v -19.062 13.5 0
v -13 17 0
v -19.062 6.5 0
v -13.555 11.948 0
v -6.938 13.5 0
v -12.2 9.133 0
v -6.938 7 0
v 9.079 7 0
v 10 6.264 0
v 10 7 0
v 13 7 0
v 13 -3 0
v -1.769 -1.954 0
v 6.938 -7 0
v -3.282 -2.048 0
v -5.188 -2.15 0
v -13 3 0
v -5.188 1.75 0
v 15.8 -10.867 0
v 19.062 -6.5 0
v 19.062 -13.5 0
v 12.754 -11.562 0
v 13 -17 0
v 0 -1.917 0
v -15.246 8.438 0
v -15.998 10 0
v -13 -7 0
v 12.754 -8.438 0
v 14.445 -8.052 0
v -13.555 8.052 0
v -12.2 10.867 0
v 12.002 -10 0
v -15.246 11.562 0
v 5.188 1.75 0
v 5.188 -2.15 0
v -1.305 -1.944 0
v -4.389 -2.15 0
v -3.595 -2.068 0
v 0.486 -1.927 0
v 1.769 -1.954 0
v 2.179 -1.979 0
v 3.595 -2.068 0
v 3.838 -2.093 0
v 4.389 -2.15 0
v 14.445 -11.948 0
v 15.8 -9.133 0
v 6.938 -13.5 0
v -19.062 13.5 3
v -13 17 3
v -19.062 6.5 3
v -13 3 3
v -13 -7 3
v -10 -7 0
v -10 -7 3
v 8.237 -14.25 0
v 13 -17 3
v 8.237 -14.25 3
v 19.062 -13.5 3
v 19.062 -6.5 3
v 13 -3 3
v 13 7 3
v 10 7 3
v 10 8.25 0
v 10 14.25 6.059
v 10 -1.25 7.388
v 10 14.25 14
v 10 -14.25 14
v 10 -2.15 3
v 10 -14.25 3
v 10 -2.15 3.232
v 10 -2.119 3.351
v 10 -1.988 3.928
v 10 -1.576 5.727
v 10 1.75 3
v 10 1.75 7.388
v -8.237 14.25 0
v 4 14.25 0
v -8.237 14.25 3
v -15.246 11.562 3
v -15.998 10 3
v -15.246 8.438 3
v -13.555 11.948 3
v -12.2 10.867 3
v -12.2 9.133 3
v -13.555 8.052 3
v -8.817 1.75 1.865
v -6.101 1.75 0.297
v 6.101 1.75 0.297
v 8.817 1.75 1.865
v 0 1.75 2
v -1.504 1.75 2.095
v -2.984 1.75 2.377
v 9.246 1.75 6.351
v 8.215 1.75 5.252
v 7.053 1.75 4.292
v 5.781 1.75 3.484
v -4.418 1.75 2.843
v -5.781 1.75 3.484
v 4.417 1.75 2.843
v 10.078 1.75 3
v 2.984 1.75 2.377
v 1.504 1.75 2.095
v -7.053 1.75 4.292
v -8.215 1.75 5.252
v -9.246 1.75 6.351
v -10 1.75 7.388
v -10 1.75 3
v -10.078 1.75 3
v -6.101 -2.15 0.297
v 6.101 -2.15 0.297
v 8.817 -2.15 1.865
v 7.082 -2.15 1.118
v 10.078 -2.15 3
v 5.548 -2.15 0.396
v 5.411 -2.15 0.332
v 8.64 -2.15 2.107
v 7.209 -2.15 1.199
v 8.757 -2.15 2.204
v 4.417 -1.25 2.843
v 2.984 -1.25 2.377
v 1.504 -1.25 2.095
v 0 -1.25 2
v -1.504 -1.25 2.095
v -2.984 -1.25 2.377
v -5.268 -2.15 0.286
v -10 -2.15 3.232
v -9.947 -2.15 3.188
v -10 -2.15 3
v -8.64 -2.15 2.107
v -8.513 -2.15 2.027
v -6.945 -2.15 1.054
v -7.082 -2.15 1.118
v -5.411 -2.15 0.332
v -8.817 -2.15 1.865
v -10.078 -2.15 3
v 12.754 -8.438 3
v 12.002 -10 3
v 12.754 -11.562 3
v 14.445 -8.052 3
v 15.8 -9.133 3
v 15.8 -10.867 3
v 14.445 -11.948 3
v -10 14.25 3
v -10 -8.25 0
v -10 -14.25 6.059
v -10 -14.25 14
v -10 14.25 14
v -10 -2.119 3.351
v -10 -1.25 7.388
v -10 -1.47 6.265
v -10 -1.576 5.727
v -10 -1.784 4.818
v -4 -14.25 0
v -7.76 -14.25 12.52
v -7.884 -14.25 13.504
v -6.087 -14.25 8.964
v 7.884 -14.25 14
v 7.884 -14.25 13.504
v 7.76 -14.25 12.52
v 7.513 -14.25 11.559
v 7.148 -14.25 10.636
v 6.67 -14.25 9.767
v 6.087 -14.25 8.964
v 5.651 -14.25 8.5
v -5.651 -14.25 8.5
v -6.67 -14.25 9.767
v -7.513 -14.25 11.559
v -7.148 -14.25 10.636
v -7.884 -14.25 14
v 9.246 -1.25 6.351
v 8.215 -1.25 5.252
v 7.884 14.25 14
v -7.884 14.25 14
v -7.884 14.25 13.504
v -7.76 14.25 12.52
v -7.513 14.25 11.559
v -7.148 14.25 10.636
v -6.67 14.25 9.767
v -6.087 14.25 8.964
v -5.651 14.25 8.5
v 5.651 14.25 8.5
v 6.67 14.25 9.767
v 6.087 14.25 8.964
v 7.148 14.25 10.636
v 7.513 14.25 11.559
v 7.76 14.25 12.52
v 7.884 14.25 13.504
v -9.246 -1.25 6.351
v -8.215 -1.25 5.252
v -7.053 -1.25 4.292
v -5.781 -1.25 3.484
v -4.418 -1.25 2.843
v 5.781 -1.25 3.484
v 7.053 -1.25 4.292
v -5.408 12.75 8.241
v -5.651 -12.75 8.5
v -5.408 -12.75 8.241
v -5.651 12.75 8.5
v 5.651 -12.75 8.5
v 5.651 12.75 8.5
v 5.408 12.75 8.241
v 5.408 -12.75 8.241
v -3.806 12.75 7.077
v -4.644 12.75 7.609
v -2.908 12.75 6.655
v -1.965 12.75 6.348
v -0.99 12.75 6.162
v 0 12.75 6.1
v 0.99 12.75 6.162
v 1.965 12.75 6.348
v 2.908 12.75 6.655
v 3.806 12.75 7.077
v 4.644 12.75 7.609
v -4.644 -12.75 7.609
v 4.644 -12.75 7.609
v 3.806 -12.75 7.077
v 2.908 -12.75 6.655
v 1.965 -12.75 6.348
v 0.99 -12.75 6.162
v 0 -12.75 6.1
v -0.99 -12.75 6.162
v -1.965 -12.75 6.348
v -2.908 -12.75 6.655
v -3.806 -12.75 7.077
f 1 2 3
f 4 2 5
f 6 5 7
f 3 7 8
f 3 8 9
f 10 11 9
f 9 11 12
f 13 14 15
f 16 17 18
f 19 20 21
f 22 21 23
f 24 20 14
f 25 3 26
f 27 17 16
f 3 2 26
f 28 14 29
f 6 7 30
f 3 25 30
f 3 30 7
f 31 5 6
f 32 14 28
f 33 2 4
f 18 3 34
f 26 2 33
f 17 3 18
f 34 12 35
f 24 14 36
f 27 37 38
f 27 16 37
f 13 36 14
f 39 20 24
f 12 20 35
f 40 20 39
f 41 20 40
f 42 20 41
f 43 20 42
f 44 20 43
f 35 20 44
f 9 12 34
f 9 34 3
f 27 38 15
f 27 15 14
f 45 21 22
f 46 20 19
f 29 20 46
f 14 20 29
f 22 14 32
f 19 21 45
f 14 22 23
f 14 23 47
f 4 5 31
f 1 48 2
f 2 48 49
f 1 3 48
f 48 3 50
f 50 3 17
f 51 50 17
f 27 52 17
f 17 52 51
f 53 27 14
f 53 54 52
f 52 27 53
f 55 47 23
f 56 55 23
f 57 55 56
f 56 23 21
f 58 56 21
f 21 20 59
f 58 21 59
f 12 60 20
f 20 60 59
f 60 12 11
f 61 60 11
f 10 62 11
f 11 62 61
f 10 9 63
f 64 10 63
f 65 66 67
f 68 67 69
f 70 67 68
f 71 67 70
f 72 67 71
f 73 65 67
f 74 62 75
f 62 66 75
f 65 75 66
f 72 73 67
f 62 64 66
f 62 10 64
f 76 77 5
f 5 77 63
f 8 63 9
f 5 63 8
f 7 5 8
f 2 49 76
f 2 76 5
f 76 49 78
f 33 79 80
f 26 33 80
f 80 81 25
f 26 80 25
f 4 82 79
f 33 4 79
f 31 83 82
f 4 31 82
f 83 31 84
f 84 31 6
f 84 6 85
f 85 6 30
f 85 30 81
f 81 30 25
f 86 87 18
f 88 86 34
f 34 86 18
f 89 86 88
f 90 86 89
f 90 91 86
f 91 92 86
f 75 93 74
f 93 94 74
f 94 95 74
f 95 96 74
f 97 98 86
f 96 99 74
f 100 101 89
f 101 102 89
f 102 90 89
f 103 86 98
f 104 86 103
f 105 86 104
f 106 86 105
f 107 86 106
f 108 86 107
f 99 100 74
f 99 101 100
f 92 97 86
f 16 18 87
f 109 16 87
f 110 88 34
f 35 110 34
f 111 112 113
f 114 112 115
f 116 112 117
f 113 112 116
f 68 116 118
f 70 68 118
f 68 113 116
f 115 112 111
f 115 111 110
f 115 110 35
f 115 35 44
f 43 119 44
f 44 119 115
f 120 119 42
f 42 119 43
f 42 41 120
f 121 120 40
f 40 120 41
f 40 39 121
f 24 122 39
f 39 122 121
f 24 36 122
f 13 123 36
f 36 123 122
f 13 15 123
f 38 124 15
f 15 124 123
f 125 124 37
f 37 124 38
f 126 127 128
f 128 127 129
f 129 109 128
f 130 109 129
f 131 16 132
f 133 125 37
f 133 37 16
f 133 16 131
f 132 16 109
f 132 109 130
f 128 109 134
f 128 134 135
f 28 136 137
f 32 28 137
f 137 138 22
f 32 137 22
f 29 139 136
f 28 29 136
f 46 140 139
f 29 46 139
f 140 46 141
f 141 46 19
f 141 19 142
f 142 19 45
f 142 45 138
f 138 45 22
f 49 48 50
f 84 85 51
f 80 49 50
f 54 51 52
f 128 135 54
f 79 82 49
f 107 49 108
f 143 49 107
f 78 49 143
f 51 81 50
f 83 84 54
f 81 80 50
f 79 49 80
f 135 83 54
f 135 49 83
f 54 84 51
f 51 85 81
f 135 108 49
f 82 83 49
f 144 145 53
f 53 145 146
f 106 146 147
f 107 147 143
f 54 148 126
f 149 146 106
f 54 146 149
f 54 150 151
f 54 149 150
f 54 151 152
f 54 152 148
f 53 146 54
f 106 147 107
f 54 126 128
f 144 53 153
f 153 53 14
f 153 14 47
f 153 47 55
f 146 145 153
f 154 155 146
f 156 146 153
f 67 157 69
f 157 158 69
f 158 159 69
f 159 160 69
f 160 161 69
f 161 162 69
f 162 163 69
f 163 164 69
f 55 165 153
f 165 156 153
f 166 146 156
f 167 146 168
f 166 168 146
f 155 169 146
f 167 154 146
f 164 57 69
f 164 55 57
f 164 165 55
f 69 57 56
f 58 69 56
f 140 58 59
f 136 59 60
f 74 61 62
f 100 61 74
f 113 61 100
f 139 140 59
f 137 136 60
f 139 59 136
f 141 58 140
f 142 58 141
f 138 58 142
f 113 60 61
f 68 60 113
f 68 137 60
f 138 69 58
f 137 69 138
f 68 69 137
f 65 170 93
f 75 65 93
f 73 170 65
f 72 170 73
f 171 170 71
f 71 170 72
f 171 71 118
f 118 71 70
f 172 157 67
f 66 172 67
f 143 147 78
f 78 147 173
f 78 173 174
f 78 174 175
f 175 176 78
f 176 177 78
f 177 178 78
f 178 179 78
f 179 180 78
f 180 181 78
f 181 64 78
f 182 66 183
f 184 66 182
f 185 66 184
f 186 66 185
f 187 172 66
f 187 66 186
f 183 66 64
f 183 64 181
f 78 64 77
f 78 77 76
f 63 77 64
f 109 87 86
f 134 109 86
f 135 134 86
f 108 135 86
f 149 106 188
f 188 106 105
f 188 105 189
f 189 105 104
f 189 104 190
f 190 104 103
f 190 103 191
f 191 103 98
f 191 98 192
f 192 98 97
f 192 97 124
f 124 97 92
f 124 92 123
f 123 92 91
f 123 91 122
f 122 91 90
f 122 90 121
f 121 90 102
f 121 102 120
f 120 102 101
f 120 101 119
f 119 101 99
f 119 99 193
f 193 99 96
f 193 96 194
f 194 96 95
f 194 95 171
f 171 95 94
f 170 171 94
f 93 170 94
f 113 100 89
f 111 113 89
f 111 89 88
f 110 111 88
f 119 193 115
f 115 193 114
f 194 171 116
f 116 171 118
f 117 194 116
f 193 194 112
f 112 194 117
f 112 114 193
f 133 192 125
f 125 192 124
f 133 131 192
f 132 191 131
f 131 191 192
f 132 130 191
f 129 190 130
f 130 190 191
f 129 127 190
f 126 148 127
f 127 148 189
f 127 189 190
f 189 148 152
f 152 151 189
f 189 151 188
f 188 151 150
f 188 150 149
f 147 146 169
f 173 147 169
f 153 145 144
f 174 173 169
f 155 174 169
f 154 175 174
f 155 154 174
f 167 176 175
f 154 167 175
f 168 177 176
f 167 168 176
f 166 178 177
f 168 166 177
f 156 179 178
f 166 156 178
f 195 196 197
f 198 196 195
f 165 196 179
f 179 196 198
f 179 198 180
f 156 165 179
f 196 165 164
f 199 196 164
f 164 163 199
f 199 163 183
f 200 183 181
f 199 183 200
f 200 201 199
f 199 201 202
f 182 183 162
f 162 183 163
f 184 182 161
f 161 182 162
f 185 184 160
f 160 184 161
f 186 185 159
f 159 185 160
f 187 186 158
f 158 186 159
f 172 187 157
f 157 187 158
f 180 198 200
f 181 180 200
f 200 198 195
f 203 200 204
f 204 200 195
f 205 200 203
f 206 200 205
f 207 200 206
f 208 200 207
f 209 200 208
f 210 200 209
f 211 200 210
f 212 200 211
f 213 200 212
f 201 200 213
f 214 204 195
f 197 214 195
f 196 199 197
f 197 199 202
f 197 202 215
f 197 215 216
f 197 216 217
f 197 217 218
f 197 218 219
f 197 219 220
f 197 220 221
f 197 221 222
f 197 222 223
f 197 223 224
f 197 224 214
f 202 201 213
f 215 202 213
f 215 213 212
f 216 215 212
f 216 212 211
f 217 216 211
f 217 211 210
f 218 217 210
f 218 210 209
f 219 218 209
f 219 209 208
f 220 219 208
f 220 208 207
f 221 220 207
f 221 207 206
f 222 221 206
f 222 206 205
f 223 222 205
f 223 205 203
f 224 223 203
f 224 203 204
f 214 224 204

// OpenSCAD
// file: functions.scad
// Mendel Dynamics
// Functions used in many files
// GNU GPL v3
// Emili Sapena 
// emili@bcndynamics.com
// bcndynamics.com
// http://wiki-es.bcndynamics.com/Mendel_Dynamics
// http://github.com/djemili/MendelDynamics
// http://www.reprap.org/wiki/Mendel_Dynamics

// Some functions from:
// Prusa Mendel
// GNU GPL v3
// Josef Průša
// josefprusa@me.com
// prusadjs.cz
// http://www.reprap.org/wiki/Prusa_Mendel
// http://github.com/prusajr/PrusaMendel


module nut(d,h,horizontal=true){
cornerdiameter =  (d / 2) / cos (180 / 6);
cylinder(h = h, r = cornerdiameter, $fn = 6);
if(horizontal){
for(i = [1:6]){
	rotate([0,0,60*i]) translate([-cornerdiameter-0.2,0,0]) rotate([0,0,-45]) cube(size = [2,2,h]);
}}
}

// Based on nophead research
module polyhole(d,h) {
    n = max(round(2 * d),3);
    rotate([0,0,180])
        cylinder(h = h, r = (d / 2) / cos (180 / n), $fn = n);
}




module roundcorner(diameter){
	difference(){
		cube(size = [diameter,diameter,99], center = false);
		translate(v = [diameter, diameter, 0]) cylinder(h = 100, r=diameter, center=true);
	}
}


module roundcorner(diameter){
	difference(){
		cube(size = [diameter,diameter,99], center = false);
		translate(v = [diameter, diameter, 0]) cylinder(h = 100, r=diameter, center=true, $fn=10);//no augmentar
	}
}

// This module creates the shape that needs to be substracted from a cube to make its corners rounded.
module MycreateMeniscus(h,radius,angle) 
difference(){
	translate([radius/2+0.1+30/2,radius/2+0.1,0]){
		cube([radius+0.2+30,radius+0.1+radius*sin(angle),h+0.2],center=true);         
	}
	
	cylinder(h=h+0.2,r=radius,$fn = 100,center=true);
}

//     __          __ 
//    |__|   ()   |__|
//
module Connection(sep=40)
union() {
	translate([-sep/2,0,(grosor+2)/2]) cube([10+0.1,grosor+0.1,grosor+2], center=true);
	translate([sep/2,0,(grosor+2)/2]) cube([10+0.1,grosor+0.1,grosor+2], center=true);
	cylinder(h=grosor+2, r=m3_diameter/2, $fn=fnfn);
}

// without m3 hole
//     __          __
//    |__|        |__|
//

module ConnectionNC(sep=40)
union() {
	translate([-sep/2,0,(grosor+2)/2]) cube([10+0.1,grosor+0.1,grosor+2], center=true);
	translate([sep/2,0,(grosor+2)/2]) cube([10+0.1,grosor+0.1,grosor+2], center=true);
}

//     __          __ 
//  __|  |________|  |__
//           
module ConnectionOut(sep=40)
union() {
	translate([-sep/2,grosor/2,grosor/2]) cube([10,grosor,grosor], center=true);
	translate([sep/2,grosor/2,grosor/2]) cube([10,grosor,grosor], center=true);
}

//     __          __ 
//  __|  |___  ___|  |__
//           ||           
//           ++

module BoltHole(canal=true)
union() {
	if (canal) {
		translate([0,-5,(grosor+2)/2-1]) cube([m3_diameter,21,grosor+2], center=true);
	}
	translate([0,-10,(grosor+2)/2-1]) cube([m3_nut_diameter_horizontal,3,grosor+2], center=true);
}


module M3hole(hex=0) {
	
	if (hex) {
		cylinder(h=grosor+2,r=m3_nut_diameter_horizontal/2+0.5, $fn=6);
	}
	else {
		cylinder(h=grosor+2,r=m3_diameter/2, $fn=fnfn);
	}
}

//Hole for Bearing 608
module b608(h=8)
{
	translate([0,0,h/2]) cylinder(r=hole_for_608/2,h=h,center=true,$fn=fnfn);
}


module M8hole(h=8)
{
	translate([0,0,h/2]) cylinder(r=m8_hole/2,h=h,center=true,$fn=fnfn);
}

module motor()
{
	union() {
		cube([l_motor,a_motor,a_motor]);
		translate([-20,a_motor/2,a_motor/2])
		rotate([0,90,0]) cylinder(h=20,r=2.5);
	}
}

// nema 17 holes
module MotorHoles()
{
	translate([motor_h_sep/2, motor_h_sep/2, 0]) M3hole();
	translate([motor_h_sep/2, -motor_h_sep/2, 0]) M3hole();
	translate([-motor_h_sep/2, motor_h_sep/2, 0]) M3hole();
	translate([-motor_h_sep/2, -motor_h_sep/2, 0]) M3hole();
	translate(v=[0,0,0]) cylinder(r=26/2, h=grosor+2, $fn=fnfn);
}
// file: constants.scad
// Mendel Dynamics
// Constant values used in many files
// GNU GPL v3
// Emili Sapena 
// emili@bcndynamics.com
// bcndynamics.com
// http://wiki-es.bcndynamics.com/Mendel_Dynamics
// http://github.com/djemili/MendelDynamics
// http://www.reprap.org/wiki/Mendel_Dynamics

//DEBUG
//fnfn=10;

//RENDER
fnfn=60;


// Plates' thickness
grosor=5;

threaded_rod_diameter = 8.7;
m3_diameter = 3.6;
m3_nut_diameter = 5.3;
m3_nut_diameter_horizontal = 6.1;

m8_clearance_hole=8.8;
m8_hole=8.4;
hole_for_608=22.3;
608_diameter=22;
pulley_diameter=10; //TODO

hole_separation=58.5; //from Prusa's frame vertex
xbars_separation=50;
hotend_hole_sep=30;
xventilador=10; //TODO
l_motor=50; // 47 mesurat per mi! deixem 50 per si hi ha motors mes llargs
a_motor=42.4; //mesurat per mi!
motor_h_sep=31;

pla_diam=3;
teflon_diam=16.3;

bushing_holes_dist=28;
rod_clamp_holes_dist=15;
belt_clamp_holes_dist=18;

//Recheck these values:
ramps_holes_a=48;
ramps_holes_b=82.5;
ramps_holes_c=75;

lme8uu=false;
lm8uu_diameter=(lme8uu==true) ? 16 : 15;
lm8uu_length=(lme8uu==true) ? 25 : 24;
lm8uu_radius = lm8uu_diameter / 2;
block_height = 2*lm8uu_length+17;

//==================================


// Triangles
marge_llarg=75;
marge_curt=10;
lateral=320+marge_llarg*2;
altura=lateral*sin(60);

//y_off=7*8.65;
y_off=60;
ample_z=100;
marge_z=20;
offset_z=20; //eleva inici del forat eix z
altura_z=(lateral-(ample_z/2+marge_z)/cos(60))*sin(60)-marge_z-offset_z;


// Lamines base i frontal

llarg_base=234;
curt_base=80;
llarg_front=llarg_base+40;

// Safata
distC_safata=210;
distV_safata=140;
distB_safata=40;
dist_belt=18;
ample_safata=220;
llarg_safata=220;
dist_bushing=28;

ample_total=410; //distancia entre centres de varilles llises Z
// z_motor
llarg_zm=(ample_total-llarg_base-grosor*2)/2 + 20;
//llarg_zm=100;
ample_zm=hole_separation+m8_clearance_hole*2+10;
zdist=30;

//extruder
x_motor_ex=xventilador+10+hotend_hole_sep/2+10;
y_motor_ex=10;
hotend_rotation=90; 
llarg_ex=xventilador+hotend_hole_sep+l_motor+30;
ample_ex=xbars_separation+m8_clearance_hole*2+10;

//xend
ample_xe=ample_ex;
llarg_xe=zdist+40;


//y motor
llarg_ym=hole_separation+threaded_rod_diameter+20;

//alt
ample_ym=a_motor+10;

//x carriage
llarg_xc=105;
ample_xc=xbars_separation+bushing_holes_dist+10;
// file: metric.scad
// PRUSA iteration3
// Default metric sizes
// GNU GPL v3
// Josef Průša <josefprusa@me.com>
// http://www.reprap.org/wiki/Prusa_Mendel
// http://github.com/prusajr/PrusaMendel

// DONT CHANGE THIS FILE! ALTER VALUES IN CONFIGURATION.SCAD INSTEAD

// RODS

threaded_rod_diameter = 8.7;
threaded_rod_diameter_horizontal = 9;
smooth_bar_diameter = 8;
smooth_bar_diameter_horizontal = 8.5;
smooth_big_bar_diameter_horizontal = 10.8;

// Nuts and bolts


m8_diameter = 9;
//iso4032 says Width across corners = 14.38
m8_nut_diameter = 14.1;

m4_diameter = 4.7;
//iso4032 says 7.66
m4_nut_diameter = 7.6;
m4_nut_diameter_horizontal = 8.15;

m3_diameter = 3.4;
//iso4032 says 6.01
m3_nut_diameter = 5.3;
m3_nut_diameter_horizontal = 6.8;
m3_washer_diameter = 6.9;

// Motors

motor_shaft = 5.5;
// file: configuration.scad
// PRUSA Mendel  
// Configuration file
// GNU GPL v3
// Josef Průša
// josefprusa@me.com
// prusadjs.cz
// http://www.reprap.org/wiki/Prusa_Mendel
// http://github.com/prusajr/PrusaMendel

// PLEASE SELECT ONE OF THE CONFIGURATIONS BELOW
// BY UN-COMMENTING IT

// Uncomment for metric settings
// METRIC METRIC METRIC METRIC METRIC METRIC METRIC METRIC 

include <metric.scad>;
include <constants.scad>

// CUSTOM CUSTOM CUSTOM CUSTOM CUSTOM CUSTOM CUSTOM CUSTOM CUSTOM

thin_wall = 3;


// Linear bearing version
linear = false;
// set false for LM-8UU, true for LM-E-8UU (ignore if linear is set to false)
lme8uu = false;



// CHANGE ONLY THE STUFF YOU KNOW
// IT WILL REPLACE DEFAULT SETTING

// RODS

// threaded_rod_diameter = 0;
// threaded_rod_diameter_horizontal = 0;
// smooth_bar_diameter = 0;
// smooth_bar_diameter_horizontal = 0;

// Nuts and bolts

// m8_diameter = 0;
// m8_nut_diameter = 0;

// m4_diameter = 0;
// m4_nut_diameter = 0;

// m3_diameter = 0;
// m3_nut_diameter = 0;

// Bushing holder

// bushing_core_diameter = smooth_bar_diameter;
// bushing_material_thickness = 0;


///counted stuff
m3_nut_diameter_bigger = ((m3_nut_diameter  / 2) / cos (180 / 6))*2;

// functions 
include <functions.scad>
// main file
// Mendel Dynamics
// X bushing A
// GNU GPL v3
// Emili Sapena 
// emili@bcndynamics.com
// bcndynamics.com
// http://wiki-es.bcndynamics.com/Mendel_Dynamics
// http://github.com/djemili/MendelDynamics
// http://www.reprap.org/wiki/Mendel_Dynamics


include <configuration.scad>
include <bushing.scad>

/**
 * @id x-bushing-a
 * @name X bushing A
 * @category Printed
 * @using 4 m3washer
 * @using 2 m3x15xhex
 * @using 2 m3nut
 */

snap_in_mount = false;

y_linear_bearings_alt(false);
